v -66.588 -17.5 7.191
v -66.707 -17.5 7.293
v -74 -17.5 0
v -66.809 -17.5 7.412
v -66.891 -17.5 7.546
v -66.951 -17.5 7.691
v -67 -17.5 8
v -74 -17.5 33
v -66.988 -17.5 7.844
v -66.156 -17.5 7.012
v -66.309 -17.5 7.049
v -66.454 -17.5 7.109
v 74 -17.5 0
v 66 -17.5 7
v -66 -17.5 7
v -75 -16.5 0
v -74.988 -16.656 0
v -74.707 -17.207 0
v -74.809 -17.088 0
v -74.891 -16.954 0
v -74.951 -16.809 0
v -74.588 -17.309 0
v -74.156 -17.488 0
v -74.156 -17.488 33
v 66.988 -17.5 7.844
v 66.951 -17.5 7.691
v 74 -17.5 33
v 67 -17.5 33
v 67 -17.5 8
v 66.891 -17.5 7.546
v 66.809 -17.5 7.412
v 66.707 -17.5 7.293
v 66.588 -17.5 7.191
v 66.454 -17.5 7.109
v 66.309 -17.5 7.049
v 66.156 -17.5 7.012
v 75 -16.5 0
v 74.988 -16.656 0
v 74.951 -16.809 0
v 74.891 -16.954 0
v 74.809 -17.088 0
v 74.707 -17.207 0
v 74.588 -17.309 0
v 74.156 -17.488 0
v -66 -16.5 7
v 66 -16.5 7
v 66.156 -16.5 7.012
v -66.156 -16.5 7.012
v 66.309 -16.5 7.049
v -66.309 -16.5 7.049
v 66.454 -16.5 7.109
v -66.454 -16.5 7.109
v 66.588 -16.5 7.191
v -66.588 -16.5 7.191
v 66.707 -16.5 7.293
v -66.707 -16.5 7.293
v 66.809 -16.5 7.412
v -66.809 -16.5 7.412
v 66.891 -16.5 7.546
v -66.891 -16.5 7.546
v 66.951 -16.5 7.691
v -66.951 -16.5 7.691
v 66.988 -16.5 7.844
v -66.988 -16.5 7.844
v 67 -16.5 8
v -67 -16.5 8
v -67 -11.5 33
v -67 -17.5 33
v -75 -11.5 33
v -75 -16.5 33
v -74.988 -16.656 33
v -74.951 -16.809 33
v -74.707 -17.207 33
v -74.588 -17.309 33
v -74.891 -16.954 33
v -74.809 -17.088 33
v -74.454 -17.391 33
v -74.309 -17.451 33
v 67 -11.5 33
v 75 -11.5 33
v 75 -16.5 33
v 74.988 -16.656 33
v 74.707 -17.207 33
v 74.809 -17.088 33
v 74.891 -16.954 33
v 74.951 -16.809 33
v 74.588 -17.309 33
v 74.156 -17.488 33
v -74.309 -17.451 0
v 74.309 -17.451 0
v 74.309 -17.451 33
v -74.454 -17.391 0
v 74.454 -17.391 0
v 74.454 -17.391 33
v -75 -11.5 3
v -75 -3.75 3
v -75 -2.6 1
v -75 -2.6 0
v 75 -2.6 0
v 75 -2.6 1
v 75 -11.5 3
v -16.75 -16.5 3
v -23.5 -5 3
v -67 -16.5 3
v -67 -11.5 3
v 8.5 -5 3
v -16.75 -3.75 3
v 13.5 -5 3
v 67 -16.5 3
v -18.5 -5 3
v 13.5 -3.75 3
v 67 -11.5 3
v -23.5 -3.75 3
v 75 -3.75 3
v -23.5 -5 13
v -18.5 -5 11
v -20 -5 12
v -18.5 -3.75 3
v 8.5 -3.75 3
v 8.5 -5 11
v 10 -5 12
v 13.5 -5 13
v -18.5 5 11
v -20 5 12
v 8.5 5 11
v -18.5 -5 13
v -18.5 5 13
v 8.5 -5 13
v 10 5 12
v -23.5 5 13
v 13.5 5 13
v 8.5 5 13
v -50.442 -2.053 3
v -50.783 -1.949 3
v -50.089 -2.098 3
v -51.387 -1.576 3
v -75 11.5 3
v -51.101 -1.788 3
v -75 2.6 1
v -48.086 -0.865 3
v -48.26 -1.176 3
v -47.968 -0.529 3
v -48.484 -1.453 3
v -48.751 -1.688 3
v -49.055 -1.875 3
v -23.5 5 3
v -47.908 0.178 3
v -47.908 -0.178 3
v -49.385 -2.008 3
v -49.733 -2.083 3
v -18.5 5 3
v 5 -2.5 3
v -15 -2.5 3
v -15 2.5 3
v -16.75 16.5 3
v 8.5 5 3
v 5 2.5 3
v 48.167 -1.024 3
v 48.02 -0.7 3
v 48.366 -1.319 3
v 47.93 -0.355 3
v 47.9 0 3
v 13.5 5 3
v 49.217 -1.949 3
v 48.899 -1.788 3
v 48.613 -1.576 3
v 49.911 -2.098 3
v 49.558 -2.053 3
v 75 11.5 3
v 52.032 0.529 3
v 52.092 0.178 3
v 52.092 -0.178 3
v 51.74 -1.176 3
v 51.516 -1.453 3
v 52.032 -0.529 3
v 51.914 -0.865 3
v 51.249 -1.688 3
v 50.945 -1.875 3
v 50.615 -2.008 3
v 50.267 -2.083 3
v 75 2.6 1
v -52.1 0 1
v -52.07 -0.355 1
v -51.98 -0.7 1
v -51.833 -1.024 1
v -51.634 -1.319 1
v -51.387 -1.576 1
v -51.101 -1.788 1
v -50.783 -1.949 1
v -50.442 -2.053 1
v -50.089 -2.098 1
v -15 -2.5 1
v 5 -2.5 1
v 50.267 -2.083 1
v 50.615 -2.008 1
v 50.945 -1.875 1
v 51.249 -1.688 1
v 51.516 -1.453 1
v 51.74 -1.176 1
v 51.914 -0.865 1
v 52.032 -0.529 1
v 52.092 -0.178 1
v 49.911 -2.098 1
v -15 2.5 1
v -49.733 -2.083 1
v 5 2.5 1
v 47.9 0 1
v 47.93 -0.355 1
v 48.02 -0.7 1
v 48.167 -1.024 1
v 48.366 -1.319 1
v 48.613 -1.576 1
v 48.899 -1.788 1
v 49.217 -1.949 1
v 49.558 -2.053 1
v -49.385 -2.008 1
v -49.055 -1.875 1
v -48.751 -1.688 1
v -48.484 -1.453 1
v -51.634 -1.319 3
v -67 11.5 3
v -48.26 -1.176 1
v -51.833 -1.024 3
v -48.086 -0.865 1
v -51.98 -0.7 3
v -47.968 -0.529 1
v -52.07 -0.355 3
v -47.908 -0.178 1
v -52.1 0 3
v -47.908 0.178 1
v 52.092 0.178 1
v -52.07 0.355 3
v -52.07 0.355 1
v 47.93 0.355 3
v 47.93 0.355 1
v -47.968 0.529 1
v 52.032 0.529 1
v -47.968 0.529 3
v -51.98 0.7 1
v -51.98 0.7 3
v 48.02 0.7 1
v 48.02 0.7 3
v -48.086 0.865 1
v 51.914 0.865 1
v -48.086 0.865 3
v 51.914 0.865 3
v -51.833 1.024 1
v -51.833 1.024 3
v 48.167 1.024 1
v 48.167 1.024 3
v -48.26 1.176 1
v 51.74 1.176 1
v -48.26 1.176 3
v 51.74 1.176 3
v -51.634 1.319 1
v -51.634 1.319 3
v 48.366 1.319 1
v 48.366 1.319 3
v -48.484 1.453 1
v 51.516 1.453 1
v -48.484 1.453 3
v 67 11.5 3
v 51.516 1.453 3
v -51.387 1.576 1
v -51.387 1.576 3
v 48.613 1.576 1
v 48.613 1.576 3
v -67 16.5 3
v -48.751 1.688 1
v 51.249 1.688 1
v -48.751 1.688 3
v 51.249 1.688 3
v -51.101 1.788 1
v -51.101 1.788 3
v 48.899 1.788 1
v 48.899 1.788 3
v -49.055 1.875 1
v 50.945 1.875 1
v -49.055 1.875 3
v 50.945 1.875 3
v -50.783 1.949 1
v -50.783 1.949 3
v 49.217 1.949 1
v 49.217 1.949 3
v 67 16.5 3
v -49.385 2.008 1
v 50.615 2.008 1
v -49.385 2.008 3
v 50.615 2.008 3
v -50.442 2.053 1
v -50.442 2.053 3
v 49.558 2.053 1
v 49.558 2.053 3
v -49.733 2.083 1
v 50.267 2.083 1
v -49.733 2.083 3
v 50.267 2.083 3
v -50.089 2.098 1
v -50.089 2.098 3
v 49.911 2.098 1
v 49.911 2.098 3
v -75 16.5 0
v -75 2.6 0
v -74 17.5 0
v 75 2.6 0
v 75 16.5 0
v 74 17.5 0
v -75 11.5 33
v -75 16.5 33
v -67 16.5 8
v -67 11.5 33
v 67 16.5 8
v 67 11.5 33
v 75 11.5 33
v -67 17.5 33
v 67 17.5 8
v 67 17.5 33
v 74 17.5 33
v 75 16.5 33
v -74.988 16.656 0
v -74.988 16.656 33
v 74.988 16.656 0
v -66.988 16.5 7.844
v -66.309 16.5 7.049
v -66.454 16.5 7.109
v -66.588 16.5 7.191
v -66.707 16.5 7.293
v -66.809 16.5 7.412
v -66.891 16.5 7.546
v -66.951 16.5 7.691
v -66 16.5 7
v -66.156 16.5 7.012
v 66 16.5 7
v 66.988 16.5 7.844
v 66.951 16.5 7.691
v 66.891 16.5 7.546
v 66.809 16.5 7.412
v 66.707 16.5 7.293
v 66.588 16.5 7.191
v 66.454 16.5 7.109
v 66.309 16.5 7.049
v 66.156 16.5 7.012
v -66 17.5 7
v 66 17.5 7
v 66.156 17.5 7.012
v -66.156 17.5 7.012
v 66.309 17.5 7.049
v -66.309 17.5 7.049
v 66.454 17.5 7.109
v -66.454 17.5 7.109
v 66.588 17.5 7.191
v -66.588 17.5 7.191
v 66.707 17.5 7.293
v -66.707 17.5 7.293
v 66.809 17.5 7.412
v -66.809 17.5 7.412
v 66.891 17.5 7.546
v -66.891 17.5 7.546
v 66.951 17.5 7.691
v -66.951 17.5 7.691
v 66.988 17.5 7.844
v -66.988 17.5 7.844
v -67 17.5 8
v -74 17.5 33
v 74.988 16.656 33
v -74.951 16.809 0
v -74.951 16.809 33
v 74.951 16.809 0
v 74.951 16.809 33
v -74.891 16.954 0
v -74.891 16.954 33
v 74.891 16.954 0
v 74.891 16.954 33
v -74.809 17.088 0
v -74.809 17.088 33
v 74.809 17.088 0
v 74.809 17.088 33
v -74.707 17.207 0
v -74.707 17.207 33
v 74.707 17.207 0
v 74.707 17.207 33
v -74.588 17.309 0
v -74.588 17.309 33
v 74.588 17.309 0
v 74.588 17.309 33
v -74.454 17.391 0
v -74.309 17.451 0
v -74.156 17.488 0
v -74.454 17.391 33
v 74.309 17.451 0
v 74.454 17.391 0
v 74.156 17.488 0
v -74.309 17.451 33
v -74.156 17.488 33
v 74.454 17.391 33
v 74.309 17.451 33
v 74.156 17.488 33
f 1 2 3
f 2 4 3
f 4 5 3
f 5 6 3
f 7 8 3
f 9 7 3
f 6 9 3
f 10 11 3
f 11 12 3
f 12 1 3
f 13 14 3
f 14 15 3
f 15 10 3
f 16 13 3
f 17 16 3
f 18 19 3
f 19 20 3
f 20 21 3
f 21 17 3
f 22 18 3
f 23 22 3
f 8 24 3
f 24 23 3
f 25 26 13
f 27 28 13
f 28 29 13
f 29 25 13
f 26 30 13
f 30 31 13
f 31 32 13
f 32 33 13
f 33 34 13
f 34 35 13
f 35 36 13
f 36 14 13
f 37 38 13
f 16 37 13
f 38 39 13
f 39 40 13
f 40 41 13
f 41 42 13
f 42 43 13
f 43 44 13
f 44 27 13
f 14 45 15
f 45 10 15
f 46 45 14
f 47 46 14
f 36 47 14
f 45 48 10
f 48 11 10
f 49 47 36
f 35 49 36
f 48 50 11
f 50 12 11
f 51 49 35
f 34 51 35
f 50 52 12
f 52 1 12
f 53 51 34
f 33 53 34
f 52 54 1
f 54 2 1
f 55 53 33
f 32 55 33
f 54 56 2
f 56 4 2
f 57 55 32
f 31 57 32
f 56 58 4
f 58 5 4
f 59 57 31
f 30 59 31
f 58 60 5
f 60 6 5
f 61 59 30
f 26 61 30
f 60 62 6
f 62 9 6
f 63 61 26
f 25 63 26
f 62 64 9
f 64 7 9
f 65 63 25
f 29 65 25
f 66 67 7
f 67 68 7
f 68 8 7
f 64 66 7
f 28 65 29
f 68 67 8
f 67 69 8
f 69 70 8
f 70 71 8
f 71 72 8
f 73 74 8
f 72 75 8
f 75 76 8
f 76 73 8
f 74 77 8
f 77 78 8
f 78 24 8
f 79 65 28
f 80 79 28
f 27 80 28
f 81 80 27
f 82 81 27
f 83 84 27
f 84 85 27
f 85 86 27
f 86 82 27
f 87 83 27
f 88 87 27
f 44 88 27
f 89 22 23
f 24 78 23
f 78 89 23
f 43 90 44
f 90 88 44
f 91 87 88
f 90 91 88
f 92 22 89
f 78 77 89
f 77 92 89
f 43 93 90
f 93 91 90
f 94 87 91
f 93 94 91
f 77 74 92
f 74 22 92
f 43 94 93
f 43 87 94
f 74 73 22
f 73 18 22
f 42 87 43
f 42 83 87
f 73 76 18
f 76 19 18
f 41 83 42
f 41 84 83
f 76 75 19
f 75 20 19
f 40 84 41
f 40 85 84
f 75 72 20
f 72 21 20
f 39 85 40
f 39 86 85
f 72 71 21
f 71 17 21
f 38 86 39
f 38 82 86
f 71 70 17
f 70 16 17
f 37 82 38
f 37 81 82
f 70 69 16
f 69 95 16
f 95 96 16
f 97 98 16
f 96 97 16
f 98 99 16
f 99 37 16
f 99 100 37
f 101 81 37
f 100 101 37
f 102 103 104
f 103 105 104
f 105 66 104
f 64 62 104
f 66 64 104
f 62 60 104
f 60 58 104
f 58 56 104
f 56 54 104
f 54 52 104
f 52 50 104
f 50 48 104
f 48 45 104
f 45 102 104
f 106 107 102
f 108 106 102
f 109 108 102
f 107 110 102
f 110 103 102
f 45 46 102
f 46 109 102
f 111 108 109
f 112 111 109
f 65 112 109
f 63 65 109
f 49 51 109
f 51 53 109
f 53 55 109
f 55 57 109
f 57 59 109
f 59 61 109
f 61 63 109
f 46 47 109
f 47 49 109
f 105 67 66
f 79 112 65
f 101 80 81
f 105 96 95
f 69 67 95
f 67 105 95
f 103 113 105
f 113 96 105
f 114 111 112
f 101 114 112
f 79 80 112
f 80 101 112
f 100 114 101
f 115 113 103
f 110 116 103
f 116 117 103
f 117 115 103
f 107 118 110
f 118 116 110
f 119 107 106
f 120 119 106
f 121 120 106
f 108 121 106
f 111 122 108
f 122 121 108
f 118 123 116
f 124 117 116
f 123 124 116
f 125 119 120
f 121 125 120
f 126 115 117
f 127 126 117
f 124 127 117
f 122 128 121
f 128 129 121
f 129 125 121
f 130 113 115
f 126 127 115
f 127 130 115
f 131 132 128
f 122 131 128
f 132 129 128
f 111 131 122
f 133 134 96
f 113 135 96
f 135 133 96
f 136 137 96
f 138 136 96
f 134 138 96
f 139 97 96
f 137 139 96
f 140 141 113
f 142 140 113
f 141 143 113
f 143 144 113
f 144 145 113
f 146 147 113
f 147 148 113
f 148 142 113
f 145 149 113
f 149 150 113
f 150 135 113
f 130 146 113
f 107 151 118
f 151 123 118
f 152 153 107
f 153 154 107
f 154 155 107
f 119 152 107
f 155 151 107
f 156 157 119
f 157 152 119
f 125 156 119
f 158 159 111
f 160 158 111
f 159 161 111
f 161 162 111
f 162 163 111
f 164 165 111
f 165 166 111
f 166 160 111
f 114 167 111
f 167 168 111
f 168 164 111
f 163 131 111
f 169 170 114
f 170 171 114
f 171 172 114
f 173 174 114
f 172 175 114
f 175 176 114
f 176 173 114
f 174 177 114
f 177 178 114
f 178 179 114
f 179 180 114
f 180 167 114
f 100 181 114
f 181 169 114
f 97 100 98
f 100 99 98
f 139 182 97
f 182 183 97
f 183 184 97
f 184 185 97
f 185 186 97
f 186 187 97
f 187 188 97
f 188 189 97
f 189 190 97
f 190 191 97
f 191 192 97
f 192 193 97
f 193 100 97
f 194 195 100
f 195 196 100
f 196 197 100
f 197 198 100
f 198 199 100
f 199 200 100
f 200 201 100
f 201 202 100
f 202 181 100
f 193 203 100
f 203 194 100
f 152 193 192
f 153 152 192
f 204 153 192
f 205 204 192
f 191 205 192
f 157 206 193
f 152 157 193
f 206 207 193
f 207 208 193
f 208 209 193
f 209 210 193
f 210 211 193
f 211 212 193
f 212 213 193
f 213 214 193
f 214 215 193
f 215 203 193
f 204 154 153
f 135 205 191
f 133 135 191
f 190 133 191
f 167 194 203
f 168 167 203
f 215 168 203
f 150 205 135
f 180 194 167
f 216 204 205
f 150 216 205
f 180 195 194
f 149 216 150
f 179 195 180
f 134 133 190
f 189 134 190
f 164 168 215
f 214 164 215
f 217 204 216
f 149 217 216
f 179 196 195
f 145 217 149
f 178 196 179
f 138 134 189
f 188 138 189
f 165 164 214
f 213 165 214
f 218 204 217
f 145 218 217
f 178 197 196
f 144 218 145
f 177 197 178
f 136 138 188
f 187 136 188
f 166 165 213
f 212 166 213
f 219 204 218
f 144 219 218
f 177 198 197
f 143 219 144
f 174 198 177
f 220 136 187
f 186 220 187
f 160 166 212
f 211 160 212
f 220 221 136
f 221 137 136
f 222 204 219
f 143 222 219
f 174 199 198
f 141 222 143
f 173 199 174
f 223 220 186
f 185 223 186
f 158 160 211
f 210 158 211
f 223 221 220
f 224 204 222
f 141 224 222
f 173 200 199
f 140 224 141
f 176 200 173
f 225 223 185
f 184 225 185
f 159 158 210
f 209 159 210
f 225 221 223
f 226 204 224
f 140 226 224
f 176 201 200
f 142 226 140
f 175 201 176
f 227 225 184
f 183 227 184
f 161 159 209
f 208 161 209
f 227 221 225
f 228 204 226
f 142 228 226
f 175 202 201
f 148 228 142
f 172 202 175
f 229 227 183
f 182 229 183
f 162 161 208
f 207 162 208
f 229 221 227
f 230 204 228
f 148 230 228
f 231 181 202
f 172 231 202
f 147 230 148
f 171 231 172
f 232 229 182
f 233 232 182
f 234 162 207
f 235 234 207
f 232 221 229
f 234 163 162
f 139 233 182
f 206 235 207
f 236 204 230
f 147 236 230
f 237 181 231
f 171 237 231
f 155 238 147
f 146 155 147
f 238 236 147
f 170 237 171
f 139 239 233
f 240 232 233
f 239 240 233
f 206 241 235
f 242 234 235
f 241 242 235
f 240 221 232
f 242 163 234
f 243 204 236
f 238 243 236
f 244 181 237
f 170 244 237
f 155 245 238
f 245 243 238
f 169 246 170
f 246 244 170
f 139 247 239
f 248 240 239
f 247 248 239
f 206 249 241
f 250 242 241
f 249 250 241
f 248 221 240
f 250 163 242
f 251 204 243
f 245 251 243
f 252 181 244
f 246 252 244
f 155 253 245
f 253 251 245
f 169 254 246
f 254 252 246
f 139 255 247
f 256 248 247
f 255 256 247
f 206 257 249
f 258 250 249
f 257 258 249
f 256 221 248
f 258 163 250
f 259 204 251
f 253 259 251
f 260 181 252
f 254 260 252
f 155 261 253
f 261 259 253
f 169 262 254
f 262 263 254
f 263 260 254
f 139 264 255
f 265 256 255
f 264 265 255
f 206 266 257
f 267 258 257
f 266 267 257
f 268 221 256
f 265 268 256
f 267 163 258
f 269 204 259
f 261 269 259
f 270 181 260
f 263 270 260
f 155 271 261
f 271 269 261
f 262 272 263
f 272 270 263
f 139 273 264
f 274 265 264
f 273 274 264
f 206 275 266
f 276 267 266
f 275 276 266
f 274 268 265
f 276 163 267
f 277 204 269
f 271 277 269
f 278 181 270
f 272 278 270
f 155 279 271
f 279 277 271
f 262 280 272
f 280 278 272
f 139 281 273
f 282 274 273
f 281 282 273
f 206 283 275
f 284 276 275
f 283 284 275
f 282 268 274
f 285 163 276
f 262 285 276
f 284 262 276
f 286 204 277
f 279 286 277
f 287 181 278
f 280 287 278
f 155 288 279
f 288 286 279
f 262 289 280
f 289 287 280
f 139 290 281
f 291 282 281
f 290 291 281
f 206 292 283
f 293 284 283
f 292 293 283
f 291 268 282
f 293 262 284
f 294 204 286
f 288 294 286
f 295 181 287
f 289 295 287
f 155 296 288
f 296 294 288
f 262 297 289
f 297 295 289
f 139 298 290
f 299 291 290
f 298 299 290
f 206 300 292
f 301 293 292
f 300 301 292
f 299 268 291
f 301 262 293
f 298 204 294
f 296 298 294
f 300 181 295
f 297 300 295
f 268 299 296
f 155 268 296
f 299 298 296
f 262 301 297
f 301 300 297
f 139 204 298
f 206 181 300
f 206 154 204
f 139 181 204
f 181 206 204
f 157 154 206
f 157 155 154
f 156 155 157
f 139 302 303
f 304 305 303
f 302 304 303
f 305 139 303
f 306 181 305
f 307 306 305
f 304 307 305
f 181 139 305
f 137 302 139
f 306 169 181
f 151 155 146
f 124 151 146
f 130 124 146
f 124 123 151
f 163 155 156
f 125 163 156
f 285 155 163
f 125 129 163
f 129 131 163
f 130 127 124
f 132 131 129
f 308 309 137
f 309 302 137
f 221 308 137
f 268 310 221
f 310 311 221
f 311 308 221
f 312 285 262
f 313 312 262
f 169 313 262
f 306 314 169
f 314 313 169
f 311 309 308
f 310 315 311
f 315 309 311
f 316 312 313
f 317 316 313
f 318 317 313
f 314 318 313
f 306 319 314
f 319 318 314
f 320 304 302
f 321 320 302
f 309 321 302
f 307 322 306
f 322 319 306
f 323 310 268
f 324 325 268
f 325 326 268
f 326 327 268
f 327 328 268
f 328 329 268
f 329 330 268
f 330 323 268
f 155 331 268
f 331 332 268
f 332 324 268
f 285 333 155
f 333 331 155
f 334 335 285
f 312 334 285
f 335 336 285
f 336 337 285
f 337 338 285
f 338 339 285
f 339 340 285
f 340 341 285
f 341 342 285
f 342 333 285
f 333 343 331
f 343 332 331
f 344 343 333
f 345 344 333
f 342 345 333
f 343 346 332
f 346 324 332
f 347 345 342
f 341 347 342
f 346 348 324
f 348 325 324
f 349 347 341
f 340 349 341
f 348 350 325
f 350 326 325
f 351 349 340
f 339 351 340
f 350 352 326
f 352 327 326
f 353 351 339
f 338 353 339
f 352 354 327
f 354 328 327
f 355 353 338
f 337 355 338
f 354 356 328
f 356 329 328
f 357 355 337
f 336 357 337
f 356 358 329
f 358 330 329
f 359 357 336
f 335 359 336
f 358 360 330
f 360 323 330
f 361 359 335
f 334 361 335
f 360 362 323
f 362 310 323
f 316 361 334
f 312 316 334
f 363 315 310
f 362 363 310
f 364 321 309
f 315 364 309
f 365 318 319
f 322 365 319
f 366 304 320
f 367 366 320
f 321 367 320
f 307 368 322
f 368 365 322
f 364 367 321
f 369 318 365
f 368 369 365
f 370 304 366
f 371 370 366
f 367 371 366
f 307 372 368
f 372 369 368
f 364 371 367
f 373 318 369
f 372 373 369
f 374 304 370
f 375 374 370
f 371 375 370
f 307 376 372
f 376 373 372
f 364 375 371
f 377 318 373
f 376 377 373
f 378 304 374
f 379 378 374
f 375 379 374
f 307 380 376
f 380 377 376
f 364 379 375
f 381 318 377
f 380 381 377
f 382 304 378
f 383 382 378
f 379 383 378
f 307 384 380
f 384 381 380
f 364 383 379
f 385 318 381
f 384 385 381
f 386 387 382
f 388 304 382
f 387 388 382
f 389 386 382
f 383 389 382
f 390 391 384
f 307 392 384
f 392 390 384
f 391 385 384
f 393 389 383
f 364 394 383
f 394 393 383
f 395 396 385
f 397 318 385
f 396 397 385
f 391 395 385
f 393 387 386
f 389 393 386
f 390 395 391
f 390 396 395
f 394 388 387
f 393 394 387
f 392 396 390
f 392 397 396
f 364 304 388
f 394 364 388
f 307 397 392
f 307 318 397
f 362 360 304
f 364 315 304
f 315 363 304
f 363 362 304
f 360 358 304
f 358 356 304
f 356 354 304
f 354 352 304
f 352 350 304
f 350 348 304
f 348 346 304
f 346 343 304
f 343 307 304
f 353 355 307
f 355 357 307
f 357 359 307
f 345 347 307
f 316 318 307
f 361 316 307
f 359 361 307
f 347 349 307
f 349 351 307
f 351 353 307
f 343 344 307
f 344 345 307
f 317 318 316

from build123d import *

# Parameters (mm, degrees)
SKICA1_W                 = 150
SKICA1_H                 = 35
P_IDAT_VYSUNUT_M2_DEPTH  = 3
SKICA4_W                 = 20
SKICA4_H                 = 5
ODEBRAT_VYSUNUT_M1_DEPTH = 2
SKICA5_W                 = 150
SKICA5_H                 = 5.2
ODEBRAT_VYSUNUT_M3_DEPTH = 1
SKICA7_R                 = 2.1
ODEBRAT_VYSUNUT_M4_DEPTH = 3
SKICA8_W                 = 8
SKICA8_H                 = 6
P_IDAT_VYSUNUT_M4_DEPTH  = 30
ZAOBLIT1_R               = 1
SKICA9_W                 = 134
SKICA9_H                 = 1
P_IDAT_VYSUNUT_M5_DEPTH  = 4
ZAOBLIT2_R               = 1
SKICA10_W                = 5
SKICA10_H                = 10
P_IDAT_VYSUNUT_M6_DEPTH  = 10
ODEBRAT_VYSUNUT_M6_DEPTH = 10


with BuildPart() as part:
    # Skica1 → Přidat vysunutím2 (new body)
    with BuildSketch(Plane.XY):
        Rectangle(SKICA1_W, SKICA1_H)
    extrude(amount=P_IDAT_VYSUNUT_M2_DEPTH)

    # Skica4 → Odebrat vysunutím1 (cut)
    with BuildSketch(Plane.XY.offset(3)):
        with Locations((-5, 0)):
            Rectangle(SKICA4_W, SKICA4_H)
    extrude(amount=-ODEBRAT_VYSUNUT_M1_DEPTH, mode=Mode.SUBTRACT)

    # Skica5 → Odebrat vysunutím3 (cut)
    with BuildSketch(Plane(origin=(0, 0, 0), x_dir=(-1, 0, 0), z_dir=(0, 0, -1))):
        Rectangle(SKICA5_W, SKICA5_H)
    extrude(amount=-ODEBRAT_VYSUNUT_M3_DEPTH, mode=Mode.SUBTRACT)

    # Skica7 → Odebrat vysunutím4 (cut, through all)
    with BuildSketch(Plane(origin=(0, 0, 1), x_dir=(-1, 0, 0), z_dir=(0, 0, -1))):
        with Locations((-50, 0)):
            Circle(SKICA7_R)
        with Locations((50, 0)):
            Circle(SKICA7_R)
    extrude(amount=-ODEBRAT_VYSUNUT_M4_DEPTH, mode=Mode.SUBTRACT)

    # Skica8 → Přidat vysunutím4 (add)
    with BuildSketch(Plane.XY.offset(3)):
        with Locations((71, 14.5)):
            Rectangle(SKICA8_W, SKICA8_H)
        with Locations((71, -14.5)):
            Rectangle(SKICA8_W, SKICA8_H)
        with Locations((-71, -14.5)):
            Rectangle(SKICA8_W, SKICA8_H)
        with Locations((-71, 14.5)):
            Rectangle(SKICA8_W, SKICA8_H)
    extrude(amount=P_IDAT_VYSUNUT_M4_DEPTH)

    # Zaoblit1
    zaoblit1_edges = [part.edges().sort_by_distance(p)[0] for p in [
        (75, -17.5, 16.5),
        (75, 17.5, 16.5),
        (-75, 17.5, 16.5),
        (-75, -17.5, 16.5),
    ]]
    fillet(zaoblit1_edges, radius=ZAOBLIT1_R)

    # Skica9 → Přidat vysunutím5 (add)
    with BuildSketch(Plane.XY.offset(3)):
        with Locations((0, 17)):
            Rectangle(SKICA9_W, SKICA9_H)
        with Locations((0, -17)):
            Rectangle(SKICA9_W, SKICA9_H)
    extrude(amount=P_IDAT_VYSUNUT_M5_DEPTH)

    # Zaoblit2
    zaoblit2_edges = [part.edges().sort_by_distance(p)[0] for p in [
        (67, 17, 7),
        (-67, 17, 7),
        (-67, -17, 7),
        (67, -17, 7),
    ]]
    fillet(zaoblit2_edges, radius=ZAOBLIT2_R)

    # Skica10 → Přidat vysunutím6 (add)
    with BuildSketch(Plane.XY.offset(3)):
        with Locations((-21, 0)):
            Rectangle(SKICA10_W, SKICA10_H)
        with Locations((11, 0)):
            Rectangle(SKICA10_W, SKICA10_H)
    extrude(amount=P_IDAT_VYSUNUT_M6_DEPTH)

    # Skica12 → Odebrat vysunutím6 (cut)
    with BuildSketch(Plane(origin=(0, 5, 0), x_dir=(1, 0, 0), z_dir=(0, 1, 0))):
        Polygon((-18.5, -13), (-18.5, -11), (-20, -12), align=None)
        Polygon((8.5, -13), (8.5, -11), (10, -12), align=None)
    extrude(amount=-ODEBRAT_VYSUNUT_M6_DEPTH, mode=Mode.SUBTRACT)


solid = part.part
